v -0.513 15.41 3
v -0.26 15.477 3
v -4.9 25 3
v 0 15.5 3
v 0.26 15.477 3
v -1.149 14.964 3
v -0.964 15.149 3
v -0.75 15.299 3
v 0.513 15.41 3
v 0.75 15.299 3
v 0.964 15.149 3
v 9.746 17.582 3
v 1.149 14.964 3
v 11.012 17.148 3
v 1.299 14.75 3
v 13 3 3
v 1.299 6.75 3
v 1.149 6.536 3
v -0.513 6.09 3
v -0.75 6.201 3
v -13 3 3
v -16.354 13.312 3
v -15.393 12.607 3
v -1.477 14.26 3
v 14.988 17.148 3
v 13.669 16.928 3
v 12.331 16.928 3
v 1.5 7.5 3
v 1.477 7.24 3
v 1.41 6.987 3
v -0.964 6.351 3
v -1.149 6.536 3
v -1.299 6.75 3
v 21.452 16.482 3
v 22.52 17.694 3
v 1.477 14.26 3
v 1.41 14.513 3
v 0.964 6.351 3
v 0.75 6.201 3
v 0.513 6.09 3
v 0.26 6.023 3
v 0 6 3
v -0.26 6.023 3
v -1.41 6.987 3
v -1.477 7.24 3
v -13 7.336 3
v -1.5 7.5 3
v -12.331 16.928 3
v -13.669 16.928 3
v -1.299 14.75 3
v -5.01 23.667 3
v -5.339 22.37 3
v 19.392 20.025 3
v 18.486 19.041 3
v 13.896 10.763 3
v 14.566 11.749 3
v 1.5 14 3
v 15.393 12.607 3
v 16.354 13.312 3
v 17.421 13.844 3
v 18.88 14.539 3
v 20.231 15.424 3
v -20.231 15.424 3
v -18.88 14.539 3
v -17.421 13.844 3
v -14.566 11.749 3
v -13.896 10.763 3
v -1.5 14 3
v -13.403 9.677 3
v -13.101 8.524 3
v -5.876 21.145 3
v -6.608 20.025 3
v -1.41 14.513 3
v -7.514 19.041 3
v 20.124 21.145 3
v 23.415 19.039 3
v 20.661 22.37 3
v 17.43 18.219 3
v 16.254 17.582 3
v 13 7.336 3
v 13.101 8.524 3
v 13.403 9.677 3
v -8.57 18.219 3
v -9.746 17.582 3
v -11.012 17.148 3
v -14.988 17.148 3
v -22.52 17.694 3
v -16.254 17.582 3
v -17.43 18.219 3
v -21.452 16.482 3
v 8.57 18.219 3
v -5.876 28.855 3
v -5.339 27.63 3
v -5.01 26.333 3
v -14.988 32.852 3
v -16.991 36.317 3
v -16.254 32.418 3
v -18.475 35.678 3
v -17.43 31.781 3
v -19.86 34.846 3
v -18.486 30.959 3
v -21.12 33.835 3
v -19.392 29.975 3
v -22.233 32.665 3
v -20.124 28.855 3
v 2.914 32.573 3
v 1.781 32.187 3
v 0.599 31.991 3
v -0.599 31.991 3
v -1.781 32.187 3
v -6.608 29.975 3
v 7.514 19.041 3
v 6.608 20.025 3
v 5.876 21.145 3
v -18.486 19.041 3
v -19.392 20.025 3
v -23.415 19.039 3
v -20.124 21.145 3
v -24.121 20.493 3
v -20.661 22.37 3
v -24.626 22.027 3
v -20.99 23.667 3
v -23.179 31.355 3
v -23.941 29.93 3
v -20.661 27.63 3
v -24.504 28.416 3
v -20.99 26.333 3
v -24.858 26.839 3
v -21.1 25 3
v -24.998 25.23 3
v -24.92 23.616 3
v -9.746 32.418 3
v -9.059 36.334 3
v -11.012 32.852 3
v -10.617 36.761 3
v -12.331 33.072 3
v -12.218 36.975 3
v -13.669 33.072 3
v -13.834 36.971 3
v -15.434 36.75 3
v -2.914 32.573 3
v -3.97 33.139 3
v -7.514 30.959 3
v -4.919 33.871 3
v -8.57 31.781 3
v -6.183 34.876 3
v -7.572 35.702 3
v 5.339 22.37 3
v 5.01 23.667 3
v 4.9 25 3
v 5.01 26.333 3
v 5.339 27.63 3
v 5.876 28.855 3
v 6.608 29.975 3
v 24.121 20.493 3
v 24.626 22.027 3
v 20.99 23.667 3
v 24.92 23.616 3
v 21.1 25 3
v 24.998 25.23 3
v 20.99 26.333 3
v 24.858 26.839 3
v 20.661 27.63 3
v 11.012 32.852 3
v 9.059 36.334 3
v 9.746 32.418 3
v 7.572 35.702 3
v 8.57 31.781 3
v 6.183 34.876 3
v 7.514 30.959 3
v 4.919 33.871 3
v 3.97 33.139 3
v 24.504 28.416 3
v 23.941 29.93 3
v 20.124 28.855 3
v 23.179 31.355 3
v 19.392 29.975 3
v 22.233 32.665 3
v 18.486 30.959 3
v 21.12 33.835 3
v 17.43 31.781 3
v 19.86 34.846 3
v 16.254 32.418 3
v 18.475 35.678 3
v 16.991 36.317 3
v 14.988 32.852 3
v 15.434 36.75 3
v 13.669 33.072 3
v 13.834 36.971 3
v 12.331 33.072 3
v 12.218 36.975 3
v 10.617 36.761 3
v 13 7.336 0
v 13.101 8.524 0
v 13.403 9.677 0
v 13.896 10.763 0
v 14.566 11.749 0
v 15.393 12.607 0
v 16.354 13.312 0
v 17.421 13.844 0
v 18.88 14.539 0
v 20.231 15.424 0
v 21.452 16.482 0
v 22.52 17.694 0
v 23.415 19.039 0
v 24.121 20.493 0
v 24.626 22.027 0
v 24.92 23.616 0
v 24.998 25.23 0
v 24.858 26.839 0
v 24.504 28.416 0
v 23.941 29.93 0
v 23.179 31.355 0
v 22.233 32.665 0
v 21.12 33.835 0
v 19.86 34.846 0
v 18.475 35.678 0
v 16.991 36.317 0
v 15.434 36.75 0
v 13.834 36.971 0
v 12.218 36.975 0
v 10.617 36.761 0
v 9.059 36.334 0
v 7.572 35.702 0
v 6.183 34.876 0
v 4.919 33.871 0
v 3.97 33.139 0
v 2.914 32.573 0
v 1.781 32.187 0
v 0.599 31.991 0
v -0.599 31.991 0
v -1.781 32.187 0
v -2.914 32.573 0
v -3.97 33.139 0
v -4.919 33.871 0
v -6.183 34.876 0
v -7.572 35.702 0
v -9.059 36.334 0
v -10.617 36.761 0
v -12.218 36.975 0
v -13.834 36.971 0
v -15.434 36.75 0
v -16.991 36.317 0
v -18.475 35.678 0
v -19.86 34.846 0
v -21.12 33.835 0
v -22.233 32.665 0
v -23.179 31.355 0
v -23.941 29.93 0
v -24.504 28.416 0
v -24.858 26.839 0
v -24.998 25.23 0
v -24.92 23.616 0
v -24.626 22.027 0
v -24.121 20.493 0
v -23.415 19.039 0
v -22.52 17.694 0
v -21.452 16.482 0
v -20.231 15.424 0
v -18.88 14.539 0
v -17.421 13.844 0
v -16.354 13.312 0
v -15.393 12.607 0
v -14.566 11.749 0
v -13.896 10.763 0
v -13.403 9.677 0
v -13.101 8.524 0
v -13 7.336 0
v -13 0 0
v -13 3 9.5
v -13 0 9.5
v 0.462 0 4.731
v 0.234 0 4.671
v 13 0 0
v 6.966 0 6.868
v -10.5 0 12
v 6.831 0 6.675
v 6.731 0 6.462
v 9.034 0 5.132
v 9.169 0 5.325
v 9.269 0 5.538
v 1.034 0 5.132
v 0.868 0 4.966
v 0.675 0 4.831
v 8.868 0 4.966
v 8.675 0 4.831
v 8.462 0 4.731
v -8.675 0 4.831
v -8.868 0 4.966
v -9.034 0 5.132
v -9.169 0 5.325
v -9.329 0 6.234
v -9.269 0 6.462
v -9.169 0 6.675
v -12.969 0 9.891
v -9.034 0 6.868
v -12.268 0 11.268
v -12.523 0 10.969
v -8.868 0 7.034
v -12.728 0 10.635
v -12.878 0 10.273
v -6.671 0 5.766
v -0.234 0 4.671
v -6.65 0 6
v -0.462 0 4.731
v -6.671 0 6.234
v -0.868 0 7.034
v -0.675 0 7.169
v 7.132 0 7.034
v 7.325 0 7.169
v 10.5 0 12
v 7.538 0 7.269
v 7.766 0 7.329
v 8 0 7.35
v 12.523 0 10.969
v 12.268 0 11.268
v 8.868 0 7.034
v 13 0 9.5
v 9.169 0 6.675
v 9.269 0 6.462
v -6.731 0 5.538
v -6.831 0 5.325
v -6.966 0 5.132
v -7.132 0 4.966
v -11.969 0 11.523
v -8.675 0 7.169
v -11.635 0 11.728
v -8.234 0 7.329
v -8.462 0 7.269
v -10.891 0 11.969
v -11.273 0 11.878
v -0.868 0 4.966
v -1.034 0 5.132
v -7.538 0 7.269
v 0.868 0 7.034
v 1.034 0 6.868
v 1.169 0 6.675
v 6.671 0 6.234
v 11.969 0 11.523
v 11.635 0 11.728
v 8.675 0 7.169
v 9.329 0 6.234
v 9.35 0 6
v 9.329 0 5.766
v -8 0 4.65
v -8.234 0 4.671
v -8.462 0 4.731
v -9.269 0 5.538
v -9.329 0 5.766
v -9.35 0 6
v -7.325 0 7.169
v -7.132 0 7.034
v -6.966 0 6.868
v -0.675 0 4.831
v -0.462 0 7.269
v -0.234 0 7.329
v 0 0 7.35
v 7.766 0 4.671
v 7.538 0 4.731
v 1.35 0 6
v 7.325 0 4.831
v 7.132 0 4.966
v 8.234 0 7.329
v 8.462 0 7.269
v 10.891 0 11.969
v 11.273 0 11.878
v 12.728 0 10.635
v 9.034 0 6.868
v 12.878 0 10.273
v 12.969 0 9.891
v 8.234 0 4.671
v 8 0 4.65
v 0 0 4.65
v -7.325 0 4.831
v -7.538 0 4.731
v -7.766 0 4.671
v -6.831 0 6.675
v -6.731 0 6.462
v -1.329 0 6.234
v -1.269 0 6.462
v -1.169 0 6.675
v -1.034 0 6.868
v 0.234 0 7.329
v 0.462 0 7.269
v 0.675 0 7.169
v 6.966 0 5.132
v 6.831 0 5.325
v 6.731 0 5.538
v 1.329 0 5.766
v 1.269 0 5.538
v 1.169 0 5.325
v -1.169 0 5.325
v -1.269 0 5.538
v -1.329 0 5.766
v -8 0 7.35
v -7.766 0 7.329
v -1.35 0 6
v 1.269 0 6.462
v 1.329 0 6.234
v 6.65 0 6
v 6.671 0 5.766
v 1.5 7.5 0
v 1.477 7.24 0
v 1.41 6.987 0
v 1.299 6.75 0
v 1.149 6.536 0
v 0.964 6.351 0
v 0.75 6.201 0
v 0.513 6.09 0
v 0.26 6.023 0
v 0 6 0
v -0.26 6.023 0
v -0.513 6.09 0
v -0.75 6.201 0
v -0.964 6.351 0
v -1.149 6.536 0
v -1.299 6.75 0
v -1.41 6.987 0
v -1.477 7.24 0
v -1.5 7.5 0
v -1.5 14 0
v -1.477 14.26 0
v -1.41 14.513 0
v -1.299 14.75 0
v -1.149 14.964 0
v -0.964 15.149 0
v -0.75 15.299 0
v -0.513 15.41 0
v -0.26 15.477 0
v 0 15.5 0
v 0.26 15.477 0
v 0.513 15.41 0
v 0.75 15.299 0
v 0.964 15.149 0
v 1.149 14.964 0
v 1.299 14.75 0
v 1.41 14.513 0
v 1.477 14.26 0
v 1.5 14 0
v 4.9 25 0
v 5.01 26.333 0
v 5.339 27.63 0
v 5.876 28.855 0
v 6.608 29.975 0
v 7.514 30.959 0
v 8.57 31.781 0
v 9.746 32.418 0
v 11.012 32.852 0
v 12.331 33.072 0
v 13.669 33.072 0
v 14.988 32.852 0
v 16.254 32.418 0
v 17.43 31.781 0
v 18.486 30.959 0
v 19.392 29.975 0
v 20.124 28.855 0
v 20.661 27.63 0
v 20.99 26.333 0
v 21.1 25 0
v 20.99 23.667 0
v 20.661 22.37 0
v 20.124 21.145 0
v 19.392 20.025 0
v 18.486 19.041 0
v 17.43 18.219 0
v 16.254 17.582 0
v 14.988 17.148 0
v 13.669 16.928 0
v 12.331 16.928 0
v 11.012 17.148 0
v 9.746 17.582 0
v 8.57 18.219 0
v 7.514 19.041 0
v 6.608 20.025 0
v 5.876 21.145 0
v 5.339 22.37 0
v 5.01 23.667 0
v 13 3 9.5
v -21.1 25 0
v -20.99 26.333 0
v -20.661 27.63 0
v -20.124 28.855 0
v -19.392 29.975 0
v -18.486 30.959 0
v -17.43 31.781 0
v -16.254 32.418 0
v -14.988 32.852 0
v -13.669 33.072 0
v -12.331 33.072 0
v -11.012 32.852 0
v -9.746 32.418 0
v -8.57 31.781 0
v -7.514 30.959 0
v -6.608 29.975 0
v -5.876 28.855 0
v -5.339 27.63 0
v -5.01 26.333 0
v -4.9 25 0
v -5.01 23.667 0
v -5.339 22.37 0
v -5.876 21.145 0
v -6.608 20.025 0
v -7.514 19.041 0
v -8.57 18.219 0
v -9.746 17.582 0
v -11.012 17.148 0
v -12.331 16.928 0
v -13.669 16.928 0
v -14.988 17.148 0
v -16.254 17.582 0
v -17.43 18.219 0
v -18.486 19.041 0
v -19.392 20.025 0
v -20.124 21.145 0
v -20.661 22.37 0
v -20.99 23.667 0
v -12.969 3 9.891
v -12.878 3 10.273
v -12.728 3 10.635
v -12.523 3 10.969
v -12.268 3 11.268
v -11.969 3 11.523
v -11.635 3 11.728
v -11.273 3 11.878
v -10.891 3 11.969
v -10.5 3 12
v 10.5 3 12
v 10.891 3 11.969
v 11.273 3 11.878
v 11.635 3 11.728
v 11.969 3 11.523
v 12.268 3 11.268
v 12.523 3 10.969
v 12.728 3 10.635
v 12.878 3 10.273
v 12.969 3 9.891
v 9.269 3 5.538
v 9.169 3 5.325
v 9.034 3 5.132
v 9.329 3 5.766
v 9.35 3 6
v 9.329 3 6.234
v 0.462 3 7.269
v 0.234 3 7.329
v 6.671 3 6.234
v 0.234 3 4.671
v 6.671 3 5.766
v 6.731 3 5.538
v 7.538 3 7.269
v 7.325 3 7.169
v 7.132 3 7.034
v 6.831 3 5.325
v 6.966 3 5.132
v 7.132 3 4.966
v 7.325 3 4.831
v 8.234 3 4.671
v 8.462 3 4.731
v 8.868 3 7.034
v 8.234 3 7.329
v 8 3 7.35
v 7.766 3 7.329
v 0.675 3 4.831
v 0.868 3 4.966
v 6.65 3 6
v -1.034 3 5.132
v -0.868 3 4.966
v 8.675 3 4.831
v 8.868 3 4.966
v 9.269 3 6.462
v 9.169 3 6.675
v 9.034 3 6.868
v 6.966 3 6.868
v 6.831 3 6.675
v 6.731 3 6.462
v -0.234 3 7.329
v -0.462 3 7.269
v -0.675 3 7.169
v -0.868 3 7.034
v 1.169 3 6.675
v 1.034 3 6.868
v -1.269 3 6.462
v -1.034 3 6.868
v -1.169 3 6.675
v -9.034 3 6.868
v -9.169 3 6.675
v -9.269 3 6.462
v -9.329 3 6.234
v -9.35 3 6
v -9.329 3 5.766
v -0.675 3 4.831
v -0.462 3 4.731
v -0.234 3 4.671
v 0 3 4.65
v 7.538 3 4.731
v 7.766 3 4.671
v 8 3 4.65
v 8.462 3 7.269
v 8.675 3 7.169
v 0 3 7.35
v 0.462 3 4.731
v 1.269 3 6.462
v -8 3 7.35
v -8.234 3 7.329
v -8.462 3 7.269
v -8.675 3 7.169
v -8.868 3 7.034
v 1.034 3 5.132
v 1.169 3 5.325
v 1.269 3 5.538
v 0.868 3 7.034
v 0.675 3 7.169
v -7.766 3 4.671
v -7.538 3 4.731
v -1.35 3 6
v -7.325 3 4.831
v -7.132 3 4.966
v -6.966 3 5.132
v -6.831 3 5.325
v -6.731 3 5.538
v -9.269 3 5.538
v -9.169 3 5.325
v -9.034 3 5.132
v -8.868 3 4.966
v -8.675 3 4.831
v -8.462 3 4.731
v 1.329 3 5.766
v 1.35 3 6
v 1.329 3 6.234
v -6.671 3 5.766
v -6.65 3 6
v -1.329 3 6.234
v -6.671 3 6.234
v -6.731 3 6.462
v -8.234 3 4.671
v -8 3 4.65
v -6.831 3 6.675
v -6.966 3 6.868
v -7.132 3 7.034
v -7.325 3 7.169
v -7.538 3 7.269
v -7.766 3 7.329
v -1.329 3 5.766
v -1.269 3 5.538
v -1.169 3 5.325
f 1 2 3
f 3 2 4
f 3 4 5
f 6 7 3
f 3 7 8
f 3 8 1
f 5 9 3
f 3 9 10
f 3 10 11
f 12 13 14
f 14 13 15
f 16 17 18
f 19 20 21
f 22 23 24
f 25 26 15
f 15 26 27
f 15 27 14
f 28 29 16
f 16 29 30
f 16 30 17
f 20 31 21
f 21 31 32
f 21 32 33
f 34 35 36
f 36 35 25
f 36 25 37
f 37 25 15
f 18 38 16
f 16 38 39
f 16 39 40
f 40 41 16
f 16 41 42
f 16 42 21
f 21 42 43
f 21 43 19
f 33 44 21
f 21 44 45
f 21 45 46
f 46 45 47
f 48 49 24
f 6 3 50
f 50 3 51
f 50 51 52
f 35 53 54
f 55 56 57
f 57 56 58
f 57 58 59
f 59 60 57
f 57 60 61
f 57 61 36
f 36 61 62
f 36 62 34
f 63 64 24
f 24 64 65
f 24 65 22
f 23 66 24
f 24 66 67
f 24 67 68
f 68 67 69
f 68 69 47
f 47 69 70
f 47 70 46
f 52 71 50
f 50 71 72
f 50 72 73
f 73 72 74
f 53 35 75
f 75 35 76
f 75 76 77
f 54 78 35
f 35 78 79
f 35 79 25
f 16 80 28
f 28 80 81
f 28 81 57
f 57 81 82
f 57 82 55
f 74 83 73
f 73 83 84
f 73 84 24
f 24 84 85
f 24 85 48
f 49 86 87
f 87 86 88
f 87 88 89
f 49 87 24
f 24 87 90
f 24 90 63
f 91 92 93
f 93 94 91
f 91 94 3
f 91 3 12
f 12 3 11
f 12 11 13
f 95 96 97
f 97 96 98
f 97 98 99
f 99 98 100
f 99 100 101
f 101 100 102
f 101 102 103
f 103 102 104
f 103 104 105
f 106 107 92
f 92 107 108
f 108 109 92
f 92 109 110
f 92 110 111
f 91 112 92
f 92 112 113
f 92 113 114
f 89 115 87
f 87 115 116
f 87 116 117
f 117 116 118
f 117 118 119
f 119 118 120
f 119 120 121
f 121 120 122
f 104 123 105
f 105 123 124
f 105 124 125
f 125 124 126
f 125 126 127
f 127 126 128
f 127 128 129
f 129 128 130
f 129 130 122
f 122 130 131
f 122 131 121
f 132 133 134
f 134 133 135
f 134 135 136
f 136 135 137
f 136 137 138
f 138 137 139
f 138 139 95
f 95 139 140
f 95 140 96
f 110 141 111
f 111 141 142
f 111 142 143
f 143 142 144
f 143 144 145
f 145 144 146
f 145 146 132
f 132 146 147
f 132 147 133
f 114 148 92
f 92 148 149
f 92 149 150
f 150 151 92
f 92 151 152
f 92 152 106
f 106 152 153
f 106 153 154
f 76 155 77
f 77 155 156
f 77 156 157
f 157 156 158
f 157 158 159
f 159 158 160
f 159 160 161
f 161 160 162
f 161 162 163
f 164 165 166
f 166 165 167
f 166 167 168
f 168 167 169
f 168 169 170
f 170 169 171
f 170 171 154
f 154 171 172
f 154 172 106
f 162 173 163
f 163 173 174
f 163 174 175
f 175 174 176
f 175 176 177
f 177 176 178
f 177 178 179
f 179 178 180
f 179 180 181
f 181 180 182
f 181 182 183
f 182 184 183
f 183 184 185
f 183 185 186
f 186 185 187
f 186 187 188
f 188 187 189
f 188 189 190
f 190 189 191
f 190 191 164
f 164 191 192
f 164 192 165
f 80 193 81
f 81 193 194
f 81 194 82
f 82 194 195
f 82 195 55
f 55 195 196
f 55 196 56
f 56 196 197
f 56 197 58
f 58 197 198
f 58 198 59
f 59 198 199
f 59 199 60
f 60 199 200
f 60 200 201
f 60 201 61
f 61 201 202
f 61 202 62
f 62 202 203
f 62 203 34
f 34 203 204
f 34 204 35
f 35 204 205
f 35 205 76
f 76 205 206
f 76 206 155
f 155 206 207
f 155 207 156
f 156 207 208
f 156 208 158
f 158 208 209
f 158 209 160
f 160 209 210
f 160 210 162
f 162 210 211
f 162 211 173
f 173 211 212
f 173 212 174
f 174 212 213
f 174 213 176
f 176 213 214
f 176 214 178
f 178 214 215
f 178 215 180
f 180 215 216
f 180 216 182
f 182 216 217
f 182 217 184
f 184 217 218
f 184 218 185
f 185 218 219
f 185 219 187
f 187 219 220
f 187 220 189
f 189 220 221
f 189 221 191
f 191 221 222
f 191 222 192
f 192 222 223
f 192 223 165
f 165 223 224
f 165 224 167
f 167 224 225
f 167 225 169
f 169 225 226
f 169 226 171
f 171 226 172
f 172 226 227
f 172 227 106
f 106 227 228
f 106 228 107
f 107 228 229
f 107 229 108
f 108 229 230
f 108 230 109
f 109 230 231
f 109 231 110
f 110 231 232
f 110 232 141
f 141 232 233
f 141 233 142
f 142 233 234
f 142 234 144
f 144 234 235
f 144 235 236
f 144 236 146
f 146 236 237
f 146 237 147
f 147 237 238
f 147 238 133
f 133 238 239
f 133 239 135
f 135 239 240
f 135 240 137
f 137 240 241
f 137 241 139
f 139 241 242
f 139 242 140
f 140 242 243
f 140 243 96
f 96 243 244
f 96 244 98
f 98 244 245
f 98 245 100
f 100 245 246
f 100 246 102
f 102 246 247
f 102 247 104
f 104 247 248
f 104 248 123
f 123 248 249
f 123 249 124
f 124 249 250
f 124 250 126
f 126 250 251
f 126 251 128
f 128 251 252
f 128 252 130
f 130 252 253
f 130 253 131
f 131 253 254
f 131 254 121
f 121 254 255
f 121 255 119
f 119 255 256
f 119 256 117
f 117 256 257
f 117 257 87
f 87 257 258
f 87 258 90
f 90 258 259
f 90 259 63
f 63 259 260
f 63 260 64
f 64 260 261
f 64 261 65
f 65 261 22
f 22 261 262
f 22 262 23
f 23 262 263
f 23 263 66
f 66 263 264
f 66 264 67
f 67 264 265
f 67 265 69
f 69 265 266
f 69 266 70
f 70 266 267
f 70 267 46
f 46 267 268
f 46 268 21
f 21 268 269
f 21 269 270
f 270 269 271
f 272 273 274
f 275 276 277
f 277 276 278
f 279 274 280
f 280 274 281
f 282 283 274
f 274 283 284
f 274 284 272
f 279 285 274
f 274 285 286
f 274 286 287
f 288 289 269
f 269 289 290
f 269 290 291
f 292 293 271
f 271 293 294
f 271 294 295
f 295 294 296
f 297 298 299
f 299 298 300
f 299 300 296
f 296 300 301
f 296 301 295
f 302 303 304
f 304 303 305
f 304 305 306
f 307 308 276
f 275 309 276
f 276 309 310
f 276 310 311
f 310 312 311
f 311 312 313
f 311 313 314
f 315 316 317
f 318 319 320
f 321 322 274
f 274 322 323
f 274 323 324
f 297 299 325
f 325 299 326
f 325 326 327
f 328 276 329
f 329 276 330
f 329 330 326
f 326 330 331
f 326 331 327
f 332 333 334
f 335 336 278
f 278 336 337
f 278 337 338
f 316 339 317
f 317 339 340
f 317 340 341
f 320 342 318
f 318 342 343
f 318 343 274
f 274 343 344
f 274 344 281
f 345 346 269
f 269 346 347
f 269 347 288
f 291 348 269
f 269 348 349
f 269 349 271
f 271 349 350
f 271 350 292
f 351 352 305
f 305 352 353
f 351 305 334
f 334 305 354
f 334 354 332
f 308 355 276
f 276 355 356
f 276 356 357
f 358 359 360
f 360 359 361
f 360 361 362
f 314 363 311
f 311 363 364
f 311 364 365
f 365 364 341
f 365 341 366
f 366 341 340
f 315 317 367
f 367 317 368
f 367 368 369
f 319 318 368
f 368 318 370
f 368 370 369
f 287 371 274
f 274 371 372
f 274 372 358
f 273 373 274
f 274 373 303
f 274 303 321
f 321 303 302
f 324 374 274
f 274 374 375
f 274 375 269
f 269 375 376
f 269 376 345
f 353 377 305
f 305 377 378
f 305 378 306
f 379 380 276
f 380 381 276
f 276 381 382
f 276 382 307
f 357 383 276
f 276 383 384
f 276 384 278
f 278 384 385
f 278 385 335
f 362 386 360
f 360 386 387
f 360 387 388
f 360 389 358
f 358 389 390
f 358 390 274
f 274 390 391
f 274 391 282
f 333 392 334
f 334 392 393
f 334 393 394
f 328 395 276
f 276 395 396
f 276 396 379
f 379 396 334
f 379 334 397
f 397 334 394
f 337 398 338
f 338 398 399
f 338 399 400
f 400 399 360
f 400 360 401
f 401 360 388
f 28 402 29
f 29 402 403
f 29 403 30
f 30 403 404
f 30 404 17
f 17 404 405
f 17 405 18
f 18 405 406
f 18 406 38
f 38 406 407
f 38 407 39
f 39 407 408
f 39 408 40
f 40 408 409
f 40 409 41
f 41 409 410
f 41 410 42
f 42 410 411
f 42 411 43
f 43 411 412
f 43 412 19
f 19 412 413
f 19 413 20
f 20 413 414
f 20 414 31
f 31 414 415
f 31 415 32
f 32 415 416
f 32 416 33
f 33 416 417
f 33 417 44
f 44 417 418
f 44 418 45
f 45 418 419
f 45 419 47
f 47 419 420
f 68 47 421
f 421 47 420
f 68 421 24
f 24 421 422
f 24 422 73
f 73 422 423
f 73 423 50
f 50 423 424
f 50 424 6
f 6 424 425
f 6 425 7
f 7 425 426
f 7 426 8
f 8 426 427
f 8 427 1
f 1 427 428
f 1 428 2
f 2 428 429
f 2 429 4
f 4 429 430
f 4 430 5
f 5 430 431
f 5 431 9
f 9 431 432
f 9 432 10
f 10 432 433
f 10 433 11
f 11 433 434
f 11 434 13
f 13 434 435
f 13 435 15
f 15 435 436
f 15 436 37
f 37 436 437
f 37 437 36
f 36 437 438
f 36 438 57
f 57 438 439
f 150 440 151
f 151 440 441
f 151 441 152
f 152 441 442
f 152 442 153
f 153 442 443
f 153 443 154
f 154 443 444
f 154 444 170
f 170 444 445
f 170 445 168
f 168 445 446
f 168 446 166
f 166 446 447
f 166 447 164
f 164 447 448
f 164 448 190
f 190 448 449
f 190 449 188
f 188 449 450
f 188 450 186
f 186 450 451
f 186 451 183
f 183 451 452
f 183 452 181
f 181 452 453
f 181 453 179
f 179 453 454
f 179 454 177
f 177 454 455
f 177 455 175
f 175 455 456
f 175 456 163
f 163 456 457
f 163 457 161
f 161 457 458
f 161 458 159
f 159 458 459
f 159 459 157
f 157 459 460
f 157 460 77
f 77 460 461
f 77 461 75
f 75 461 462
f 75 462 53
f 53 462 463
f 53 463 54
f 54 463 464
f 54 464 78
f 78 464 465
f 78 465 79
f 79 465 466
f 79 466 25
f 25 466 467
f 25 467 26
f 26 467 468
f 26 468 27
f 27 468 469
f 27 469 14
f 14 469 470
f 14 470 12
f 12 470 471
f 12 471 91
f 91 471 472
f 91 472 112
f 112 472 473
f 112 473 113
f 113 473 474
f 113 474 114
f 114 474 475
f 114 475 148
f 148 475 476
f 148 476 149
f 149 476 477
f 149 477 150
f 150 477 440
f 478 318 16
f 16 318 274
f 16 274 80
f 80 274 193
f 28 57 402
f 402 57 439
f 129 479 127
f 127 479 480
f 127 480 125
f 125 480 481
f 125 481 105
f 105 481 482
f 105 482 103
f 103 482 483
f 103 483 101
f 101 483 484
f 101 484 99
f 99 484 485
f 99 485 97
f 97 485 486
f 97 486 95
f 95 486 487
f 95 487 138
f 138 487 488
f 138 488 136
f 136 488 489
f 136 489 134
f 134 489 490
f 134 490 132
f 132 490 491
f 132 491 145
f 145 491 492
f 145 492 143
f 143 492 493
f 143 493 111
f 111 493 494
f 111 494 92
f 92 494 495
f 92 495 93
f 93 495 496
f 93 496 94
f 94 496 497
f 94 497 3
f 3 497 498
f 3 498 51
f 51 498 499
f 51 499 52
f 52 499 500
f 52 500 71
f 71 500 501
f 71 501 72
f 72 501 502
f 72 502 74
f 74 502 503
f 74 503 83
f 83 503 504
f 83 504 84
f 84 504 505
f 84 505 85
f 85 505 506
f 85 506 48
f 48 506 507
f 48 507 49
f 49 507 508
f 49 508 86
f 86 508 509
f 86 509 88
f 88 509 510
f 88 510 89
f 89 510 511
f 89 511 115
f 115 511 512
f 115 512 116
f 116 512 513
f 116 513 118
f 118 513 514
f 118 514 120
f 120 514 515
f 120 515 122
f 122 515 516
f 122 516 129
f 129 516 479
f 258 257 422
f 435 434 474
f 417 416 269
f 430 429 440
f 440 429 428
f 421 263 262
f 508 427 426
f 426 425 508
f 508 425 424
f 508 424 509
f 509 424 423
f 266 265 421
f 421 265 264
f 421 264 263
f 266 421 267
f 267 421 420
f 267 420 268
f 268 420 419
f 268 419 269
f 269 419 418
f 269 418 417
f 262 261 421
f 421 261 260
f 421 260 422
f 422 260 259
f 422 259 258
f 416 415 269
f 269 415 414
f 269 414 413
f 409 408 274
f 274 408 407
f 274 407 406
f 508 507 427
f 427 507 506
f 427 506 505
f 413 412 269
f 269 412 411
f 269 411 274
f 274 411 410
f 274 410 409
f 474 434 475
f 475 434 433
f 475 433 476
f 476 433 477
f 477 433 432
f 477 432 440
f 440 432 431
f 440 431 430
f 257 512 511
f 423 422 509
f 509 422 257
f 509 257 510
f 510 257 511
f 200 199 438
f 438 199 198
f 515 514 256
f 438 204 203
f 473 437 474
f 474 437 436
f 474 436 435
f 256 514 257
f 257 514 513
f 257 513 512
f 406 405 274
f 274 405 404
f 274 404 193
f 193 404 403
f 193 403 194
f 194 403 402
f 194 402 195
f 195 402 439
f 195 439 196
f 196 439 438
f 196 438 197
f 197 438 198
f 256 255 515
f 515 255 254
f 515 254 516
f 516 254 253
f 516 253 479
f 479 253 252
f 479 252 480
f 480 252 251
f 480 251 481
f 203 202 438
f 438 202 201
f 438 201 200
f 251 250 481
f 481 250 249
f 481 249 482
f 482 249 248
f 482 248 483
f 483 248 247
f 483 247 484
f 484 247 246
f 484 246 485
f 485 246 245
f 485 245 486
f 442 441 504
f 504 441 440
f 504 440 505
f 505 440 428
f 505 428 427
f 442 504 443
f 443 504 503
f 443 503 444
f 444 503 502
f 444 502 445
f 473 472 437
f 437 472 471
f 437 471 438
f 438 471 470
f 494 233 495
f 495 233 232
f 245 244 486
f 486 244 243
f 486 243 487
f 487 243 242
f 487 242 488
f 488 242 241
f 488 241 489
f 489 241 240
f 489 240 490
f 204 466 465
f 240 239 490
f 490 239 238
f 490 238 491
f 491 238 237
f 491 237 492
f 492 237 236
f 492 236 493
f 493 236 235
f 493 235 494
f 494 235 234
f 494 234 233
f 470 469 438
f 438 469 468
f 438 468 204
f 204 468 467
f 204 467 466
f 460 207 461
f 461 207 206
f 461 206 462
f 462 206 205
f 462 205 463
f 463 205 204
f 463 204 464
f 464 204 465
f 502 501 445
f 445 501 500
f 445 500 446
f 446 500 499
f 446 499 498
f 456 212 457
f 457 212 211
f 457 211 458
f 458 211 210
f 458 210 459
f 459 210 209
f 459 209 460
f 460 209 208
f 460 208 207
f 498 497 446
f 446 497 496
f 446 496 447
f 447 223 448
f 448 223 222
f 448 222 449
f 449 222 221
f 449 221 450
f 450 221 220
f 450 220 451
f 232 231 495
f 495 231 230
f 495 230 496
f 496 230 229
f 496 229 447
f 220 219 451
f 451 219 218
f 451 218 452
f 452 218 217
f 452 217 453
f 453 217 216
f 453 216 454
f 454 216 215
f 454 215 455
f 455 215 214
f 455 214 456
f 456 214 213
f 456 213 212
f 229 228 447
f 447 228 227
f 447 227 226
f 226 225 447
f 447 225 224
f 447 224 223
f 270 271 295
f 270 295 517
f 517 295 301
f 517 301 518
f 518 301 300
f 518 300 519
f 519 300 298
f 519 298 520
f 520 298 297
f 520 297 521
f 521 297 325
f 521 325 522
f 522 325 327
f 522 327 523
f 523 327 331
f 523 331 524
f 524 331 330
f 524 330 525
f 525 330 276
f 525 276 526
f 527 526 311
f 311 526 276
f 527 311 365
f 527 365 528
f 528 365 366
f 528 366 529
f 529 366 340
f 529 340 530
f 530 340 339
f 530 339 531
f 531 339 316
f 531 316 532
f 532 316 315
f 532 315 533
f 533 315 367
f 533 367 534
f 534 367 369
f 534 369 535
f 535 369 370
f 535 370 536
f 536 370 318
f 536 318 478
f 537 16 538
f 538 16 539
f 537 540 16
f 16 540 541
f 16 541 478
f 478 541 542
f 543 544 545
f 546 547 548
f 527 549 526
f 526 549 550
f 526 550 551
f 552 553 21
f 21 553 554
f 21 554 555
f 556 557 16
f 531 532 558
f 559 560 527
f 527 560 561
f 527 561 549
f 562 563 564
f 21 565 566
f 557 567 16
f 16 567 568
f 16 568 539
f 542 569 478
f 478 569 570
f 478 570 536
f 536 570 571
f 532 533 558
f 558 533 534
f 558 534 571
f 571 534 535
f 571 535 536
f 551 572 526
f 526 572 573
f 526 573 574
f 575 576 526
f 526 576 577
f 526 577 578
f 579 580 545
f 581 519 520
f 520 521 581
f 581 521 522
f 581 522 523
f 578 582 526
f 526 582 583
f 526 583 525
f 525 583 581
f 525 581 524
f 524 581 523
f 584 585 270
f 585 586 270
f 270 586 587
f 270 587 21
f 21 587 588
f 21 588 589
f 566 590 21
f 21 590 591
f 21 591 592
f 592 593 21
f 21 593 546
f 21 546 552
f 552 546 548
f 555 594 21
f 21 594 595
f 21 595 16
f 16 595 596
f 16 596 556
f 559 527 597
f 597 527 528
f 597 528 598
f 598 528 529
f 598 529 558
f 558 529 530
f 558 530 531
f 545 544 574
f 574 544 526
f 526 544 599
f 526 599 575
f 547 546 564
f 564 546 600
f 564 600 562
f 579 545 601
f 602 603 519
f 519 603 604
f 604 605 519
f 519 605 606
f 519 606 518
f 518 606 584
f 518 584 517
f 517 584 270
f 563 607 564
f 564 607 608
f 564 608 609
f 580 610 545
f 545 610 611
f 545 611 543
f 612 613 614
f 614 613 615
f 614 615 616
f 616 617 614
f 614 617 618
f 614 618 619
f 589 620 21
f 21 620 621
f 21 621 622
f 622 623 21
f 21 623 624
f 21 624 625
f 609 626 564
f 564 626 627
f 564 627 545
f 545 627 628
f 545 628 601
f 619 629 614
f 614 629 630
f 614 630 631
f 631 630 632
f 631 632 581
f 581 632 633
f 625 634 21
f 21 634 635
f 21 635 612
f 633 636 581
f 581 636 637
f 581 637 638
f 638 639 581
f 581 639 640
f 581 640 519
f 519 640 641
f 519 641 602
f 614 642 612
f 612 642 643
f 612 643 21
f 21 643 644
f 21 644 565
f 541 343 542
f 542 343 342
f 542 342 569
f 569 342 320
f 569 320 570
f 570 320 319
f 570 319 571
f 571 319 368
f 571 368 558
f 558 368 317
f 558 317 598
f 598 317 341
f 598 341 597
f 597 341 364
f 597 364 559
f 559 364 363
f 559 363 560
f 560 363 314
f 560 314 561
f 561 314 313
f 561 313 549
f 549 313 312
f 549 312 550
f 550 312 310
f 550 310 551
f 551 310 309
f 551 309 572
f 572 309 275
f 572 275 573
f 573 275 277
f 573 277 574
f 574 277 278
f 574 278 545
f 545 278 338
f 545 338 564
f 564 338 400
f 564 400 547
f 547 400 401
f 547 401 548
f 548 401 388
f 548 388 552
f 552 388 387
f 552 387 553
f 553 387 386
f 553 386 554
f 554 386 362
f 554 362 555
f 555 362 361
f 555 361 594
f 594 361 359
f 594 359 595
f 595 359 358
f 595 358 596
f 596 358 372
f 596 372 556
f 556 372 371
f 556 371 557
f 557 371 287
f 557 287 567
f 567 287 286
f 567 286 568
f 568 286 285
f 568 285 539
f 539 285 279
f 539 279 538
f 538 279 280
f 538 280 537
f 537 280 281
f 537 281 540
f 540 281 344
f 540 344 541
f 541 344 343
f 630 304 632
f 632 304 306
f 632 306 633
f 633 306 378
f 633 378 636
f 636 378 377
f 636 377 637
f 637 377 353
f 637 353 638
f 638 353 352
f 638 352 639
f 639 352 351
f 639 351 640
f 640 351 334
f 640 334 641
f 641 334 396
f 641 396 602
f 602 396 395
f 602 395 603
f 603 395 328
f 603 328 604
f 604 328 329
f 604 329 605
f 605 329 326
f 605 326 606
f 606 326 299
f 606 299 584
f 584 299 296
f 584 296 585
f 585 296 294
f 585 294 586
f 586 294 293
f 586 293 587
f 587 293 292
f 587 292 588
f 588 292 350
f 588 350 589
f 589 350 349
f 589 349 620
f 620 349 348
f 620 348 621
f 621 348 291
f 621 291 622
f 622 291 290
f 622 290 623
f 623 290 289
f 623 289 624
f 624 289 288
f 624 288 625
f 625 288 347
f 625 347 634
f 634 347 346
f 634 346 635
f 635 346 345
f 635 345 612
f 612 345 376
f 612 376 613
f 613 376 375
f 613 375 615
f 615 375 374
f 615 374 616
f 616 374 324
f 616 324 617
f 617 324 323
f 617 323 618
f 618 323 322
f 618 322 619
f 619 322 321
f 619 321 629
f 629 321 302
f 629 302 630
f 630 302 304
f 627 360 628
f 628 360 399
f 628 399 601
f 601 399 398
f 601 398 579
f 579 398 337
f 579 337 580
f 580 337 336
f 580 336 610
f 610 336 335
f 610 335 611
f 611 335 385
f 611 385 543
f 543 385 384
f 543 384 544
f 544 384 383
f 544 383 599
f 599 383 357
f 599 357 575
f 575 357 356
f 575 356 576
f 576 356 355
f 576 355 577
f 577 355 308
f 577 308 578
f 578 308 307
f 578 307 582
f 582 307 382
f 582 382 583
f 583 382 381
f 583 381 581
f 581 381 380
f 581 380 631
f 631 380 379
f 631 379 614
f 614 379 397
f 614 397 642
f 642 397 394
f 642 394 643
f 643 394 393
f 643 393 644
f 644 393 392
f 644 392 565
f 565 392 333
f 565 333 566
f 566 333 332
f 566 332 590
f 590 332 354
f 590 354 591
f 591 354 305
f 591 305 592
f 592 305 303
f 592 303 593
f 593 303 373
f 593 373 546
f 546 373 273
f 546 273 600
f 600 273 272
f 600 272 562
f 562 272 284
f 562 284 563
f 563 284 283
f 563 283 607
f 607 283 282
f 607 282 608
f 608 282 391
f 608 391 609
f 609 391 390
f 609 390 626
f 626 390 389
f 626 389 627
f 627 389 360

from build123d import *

# Parameters (mm, degrees)
SKETCH1_R           = 8.1
BOSS_EXTRUDE1_DEPTH = 3
SKETCH3_R           = 1.35
BOSS_EXTRUDE2_DEPTH = 3


with BuildPart() as part:
    # Sketch1 → Boss-Extrude1 (new body)
    with BuildSketch(Plane.XY):
        with BuildLine():
            Line((-13, 7.336478267), (-13, 0))
            Line((-13, 0), (13, 0))
            Line((13, 0), (13, 7.336478267))
            ThreePointArc((13, 7.336478267), (14.209808657, 11.270138676), (17.421052632, 13.844091537))
            ThreePointArc((17.421052632, 13.844091537), (22.926042302, 18.256582157), (25, 25))
            ThreePointArc((25, 25), (17.848843081, 35.976735433), (4.918546537, 33.87074461))
            ThreePointArc((4.918546537, 33.87074461), (0, 31.966212419), (-4.918546537, 33.87074461))
            ThreePointArc((-4.918546537, 33.87074461), (-17.848843081, 35.976735433), (-25, 25))
            ThreePointArc((-25, 25), (-22.926042302, 18.256582157), (-17.421052632, 13.844091537))
            ThreePointArc((-17.421052632, 13.844091537), (-14.209808657, 11.270138676), (-13, 7.336478267))
        make_face()
        with BuildLine():
            ThreePointArc((-1.5, 14), (0, 15.5), (1.5, 14))
            Line((1.5, 14), (1.5, 7.5))
            ThreePointArc((1.5, 7.5), (0, 6), (-1.5, 7.5))
            Line((-1.5, 7.5), (-1.5, 14))
        make_face(mode=Mode.SUBTRACT)
        with Locations((-13, 25)):
            Circle(SKETCH1_R, mode=Mode.SUBTRACT)
        with Locations((13, 25)):
            Circle(SKETCH1_R, mode=Mode.SUBTRACT)
    extrude(amount=BOSS_EXTRUDE1_DEPTH)

    # Sketch3 → Boss-Extrude2 (add)
    with BuildSketch(Plane.XZ):
        with BuildLine():
            Line((-13, 3), (13, 3))
            Line((13, 3), (13, 9.5))
            ThreePointArc((13, 9.5), (12.267766953, 11.267766953), (10.5, 12))
            Line((10.5, 12), (-10.5, 12))
            ThreePointArc((-10.5, 12), (-12.267766953, 11.267766953), (-13, 9.5))
            Line((-13, 9.5), (-13, 3))
        make_face()
        with Locations((8, 6)):
            Circle(SKETCH3_R, mode=Mode.SUBTRACT)
        with Locations((-8, 6)):
            Circle(SKETCH3_R, mode=Mode.SUBTRACT)
        with Locations((0, 6)):
            Circle(SKETCH3_R, mode=Mode.SUBTRACT)
    extrude(amount=-BOSS_EXTRUDE2_DEPTH)


solid = part.part
